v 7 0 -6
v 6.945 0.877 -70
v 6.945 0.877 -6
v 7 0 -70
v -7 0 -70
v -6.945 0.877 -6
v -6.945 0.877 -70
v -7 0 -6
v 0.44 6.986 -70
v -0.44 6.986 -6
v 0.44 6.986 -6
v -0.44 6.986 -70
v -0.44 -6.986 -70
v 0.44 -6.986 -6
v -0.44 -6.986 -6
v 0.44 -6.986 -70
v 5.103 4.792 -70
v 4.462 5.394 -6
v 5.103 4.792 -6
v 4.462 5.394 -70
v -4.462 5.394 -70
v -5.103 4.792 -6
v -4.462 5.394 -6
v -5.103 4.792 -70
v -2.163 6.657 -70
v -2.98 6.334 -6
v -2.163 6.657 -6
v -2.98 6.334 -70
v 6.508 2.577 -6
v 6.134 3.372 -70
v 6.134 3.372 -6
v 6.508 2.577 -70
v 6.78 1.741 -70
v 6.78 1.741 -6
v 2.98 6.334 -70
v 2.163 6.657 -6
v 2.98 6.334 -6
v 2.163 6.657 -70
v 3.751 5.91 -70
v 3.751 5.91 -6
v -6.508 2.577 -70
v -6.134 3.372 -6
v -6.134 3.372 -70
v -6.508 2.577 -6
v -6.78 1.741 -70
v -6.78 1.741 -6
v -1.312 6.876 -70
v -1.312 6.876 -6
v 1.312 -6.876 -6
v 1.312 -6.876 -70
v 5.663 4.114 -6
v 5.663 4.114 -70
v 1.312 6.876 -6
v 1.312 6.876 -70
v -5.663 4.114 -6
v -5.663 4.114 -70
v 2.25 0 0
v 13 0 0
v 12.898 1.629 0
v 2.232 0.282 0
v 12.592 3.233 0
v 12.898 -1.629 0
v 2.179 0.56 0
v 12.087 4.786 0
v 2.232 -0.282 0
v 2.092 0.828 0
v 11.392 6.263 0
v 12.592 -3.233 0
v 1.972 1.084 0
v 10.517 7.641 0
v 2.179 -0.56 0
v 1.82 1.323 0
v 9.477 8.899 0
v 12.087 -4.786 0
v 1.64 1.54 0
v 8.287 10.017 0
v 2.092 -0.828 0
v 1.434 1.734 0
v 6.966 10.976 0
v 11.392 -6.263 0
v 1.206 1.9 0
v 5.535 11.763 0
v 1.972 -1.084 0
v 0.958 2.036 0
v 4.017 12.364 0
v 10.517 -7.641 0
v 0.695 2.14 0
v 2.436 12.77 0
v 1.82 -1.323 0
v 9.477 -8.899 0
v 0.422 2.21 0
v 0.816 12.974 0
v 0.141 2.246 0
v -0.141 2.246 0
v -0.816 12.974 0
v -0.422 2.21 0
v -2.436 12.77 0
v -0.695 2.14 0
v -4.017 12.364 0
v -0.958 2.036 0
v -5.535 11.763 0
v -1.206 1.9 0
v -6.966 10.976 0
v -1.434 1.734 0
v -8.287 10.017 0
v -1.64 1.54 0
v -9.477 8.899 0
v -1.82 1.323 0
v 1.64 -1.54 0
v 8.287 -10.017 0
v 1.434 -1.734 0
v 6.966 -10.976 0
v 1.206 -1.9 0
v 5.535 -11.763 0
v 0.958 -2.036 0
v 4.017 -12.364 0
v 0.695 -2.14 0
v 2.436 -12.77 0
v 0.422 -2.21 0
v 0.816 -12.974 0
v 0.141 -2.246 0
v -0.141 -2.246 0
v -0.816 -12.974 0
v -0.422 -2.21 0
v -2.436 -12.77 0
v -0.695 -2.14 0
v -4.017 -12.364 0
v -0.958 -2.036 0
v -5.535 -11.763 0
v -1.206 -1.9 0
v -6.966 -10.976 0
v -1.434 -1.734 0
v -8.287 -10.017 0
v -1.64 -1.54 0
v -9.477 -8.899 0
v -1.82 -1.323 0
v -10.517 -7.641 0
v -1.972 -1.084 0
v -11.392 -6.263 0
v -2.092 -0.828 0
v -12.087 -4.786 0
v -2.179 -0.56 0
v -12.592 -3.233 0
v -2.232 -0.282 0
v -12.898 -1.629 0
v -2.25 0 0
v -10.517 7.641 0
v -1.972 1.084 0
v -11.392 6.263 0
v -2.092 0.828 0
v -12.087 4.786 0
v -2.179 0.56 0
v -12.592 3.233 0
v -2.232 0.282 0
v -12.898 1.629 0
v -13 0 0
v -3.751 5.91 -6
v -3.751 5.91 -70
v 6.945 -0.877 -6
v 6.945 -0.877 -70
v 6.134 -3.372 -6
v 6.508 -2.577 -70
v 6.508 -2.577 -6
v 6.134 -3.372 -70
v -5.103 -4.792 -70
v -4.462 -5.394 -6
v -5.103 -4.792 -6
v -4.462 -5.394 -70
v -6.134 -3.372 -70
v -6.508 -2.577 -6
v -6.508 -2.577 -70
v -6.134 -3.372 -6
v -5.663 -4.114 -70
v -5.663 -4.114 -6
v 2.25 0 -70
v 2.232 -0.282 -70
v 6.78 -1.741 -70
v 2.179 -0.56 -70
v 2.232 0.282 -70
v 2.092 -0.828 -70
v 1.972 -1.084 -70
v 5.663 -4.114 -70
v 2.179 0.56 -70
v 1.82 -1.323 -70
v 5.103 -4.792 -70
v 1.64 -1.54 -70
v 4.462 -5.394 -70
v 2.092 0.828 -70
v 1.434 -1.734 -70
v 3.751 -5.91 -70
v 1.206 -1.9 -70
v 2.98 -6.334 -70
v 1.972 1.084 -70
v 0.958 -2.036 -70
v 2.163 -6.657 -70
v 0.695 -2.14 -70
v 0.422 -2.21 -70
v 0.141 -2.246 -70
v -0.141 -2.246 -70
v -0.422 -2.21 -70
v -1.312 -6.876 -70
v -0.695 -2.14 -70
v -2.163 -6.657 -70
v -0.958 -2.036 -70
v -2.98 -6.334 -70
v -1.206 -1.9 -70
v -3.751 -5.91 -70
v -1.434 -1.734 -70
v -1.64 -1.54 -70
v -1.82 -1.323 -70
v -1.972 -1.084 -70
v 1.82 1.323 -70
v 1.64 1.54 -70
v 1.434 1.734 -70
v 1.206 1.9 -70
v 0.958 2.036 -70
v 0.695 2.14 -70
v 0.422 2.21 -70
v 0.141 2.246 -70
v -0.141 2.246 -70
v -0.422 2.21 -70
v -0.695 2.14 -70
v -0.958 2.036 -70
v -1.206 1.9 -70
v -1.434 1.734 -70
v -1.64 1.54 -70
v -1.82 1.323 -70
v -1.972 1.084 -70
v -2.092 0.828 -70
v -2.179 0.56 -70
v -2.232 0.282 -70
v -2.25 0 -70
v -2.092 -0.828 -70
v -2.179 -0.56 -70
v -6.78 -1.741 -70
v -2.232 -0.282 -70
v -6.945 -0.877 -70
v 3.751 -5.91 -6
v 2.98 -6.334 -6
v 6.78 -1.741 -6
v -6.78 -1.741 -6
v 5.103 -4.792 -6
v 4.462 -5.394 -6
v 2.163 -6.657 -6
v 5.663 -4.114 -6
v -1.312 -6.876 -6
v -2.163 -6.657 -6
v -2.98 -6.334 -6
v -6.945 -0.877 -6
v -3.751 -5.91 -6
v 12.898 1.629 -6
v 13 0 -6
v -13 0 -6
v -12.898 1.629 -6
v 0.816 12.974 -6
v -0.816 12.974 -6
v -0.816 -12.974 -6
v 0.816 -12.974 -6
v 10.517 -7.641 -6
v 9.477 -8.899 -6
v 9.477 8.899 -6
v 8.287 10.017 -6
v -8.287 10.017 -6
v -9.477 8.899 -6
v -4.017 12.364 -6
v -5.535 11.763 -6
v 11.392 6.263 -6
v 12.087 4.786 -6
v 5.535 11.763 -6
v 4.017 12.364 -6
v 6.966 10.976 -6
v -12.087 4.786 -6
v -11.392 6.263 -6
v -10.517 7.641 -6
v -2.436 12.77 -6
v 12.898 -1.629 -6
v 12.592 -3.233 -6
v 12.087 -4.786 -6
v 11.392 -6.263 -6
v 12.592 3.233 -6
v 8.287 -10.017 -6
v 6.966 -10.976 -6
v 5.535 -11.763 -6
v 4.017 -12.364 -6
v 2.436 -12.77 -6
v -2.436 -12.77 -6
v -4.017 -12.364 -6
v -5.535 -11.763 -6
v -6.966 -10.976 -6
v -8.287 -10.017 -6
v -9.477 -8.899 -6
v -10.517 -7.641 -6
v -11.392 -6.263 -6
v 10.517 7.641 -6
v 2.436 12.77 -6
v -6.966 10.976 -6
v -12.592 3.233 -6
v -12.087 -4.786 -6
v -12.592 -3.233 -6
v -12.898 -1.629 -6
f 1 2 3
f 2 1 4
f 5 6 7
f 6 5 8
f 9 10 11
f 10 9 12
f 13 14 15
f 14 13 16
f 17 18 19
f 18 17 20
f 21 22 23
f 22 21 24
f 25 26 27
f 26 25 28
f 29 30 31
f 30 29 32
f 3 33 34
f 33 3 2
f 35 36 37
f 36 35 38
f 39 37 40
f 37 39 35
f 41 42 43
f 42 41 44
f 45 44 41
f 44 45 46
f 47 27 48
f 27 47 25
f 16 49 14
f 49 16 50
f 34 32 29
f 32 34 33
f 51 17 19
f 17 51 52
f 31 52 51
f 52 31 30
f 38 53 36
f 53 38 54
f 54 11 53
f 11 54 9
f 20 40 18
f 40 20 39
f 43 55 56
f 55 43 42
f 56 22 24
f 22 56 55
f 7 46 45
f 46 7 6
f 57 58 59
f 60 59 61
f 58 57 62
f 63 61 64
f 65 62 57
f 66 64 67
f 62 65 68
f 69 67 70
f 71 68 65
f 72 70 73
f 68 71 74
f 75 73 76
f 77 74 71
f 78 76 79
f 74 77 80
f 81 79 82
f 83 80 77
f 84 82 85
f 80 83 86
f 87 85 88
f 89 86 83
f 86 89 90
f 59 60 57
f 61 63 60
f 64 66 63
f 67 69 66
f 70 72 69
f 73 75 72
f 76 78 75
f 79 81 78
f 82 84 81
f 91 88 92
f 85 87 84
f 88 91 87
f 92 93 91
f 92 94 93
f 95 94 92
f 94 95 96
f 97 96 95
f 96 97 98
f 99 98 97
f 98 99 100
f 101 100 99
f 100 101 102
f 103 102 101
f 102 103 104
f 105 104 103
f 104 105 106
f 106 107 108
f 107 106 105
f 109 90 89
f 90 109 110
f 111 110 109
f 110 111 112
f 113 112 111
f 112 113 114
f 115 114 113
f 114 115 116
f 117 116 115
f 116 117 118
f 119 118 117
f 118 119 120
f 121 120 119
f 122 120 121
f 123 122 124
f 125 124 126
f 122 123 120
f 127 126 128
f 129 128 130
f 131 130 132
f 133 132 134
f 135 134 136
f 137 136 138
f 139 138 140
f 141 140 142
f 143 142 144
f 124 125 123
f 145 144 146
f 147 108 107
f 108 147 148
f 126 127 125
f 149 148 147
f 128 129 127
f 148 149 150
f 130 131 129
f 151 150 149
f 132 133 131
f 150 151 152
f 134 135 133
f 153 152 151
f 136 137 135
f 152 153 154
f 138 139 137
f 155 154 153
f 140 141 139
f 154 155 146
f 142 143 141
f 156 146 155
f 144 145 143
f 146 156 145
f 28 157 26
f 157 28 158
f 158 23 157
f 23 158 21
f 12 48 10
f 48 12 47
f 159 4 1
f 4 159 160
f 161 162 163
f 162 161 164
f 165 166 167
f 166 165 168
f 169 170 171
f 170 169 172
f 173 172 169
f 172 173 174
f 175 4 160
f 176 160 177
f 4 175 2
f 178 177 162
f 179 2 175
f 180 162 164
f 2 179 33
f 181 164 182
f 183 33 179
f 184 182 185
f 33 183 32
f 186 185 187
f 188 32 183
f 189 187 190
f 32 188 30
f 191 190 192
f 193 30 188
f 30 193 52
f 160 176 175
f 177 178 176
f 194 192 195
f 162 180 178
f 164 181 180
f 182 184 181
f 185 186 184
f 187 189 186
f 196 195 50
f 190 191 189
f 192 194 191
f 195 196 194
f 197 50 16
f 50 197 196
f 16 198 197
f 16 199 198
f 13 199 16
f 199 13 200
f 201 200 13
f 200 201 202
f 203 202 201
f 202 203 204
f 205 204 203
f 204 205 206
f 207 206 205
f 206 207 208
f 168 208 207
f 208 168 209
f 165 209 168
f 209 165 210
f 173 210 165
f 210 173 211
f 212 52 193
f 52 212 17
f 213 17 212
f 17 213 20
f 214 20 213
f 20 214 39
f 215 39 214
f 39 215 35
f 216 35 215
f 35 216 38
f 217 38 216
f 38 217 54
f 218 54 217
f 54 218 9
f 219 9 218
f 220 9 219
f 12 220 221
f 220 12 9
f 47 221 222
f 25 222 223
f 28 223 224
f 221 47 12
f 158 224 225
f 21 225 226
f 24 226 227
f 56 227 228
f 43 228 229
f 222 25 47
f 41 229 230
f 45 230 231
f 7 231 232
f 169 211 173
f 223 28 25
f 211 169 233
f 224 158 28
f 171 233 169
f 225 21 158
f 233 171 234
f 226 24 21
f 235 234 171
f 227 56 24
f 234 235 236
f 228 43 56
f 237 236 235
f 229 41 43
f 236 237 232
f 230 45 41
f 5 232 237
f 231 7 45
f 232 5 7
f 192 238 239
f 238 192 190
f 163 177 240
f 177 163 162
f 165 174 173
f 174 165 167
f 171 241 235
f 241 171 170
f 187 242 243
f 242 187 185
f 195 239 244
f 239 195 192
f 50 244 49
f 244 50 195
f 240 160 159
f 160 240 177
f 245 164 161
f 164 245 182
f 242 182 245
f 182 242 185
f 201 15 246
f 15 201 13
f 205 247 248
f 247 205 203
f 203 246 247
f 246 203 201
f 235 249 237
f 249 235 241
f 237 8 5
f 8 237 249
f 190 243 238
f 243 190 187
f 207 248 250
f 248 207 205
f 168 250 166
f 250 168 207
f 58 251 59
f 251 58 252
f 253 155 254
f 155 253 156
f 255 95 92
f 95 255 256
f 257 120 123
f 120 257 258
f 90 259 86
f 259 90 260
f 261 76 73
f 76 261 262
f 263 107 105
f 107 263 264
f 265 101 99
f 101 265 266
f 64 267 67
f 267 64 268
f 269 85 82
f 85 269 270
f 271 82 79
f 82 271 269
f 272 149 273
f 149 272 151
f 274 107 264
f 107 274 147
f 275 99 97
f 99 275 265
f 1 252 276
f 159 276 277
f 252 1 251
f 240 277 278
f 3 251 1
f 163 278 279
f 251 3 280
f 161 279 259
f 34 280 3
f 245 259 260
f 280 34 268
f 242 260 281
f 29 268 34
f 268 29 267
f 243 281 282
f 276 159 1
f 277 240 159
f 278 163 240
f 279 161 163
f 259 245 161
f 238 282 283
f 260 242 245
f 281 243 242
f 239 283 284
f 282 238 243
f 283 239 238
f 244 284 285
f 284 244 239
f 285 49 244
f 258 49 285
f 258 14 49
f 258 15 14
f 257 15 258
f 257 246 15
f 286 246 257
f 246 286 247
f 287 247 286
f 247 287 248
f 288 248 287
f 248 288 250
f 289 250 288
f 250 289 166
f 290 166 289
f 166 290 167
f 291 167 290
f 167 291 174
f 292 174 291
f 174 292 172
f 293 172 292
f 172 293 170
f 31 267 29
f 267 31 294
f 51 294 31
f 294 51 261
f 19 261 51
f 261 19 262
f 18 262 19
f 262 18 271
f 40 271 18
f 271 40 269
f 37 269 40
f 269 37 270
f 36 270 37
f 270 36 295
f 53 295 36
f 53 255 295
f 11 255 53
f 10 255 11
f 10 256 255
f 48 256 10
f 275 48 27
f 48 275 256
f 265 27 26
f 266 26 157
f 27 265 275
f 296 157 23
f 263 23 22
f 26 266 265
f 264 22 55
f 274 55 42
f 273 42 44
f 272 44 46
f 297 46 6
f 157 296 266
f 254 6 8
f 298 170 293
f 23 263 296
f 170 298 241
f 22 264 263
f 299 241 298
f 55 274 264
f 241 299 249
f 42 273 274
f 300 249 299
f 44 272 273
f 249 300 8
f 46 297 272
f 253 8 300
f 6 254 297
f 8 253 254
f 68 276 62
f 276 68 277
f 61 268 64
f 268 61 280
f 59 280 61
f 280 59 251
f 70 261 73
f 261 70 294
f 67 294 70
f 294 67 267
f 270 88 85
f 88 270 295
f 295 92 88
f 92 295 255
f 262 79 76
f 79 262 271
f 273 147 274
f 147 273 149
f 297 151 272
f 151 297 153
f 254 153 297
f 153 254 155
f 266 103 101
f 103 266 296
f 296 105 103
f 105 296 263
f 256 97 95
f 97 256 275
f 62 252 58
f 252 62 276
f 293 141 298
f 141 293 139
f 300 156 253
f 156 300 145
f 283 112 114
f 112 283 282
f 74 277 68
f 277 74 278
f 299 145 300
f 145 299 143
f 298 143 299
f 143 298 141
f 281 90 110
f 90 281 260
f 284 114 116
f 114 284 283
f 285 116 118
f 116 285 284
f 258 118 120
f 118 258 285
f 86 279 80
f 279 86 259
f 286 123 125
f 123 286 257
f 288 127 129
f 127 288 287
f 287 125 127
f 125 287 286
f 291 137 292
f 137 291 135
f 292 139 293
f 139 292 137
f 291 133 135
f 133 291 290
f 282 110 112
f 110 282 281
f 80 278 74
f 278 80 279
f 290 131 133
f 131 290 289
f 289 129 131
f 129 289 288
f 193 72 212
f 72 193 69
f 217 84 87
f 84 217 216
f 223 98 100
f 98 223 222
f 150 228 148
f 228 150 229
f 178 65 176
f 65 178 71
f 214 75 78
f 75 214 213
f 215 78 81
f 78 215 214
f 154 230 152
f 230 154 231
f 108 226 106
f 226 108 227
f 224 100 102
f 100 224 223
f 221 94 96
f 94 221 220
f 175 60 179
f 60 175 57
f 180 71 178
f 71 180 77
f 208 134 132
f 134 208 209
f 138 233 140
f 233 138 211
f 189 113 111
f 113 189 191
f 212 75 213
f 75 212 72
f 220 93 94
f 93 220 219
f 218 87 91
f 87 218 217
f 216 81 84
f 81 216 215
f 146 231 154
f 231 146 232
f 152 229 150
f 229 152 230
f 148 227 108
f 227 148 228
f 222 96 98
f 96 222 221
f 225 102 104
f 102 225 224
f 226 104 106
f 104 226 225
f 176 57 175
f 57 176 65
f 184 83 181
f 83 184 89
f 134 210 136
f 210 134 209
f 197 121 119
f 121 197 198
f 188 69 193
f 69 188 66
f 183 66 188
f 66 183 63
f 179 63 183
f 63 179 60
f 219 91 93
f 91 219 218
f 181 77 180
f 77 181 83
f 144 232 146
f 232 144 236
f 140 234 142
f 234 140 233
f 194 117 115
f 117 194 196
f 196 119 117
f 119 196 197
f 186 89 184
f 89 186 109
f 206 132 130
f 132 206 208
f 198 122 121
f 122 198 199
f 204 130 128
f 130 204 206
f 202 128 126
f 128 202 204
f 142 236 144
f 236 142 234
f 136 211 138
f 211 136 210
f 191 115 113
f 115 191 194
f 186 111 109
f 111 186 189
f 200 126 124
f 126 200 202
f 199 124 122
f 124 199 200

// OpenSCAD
$fn = 50;


difference() {
	union() {
		translate(v = [0, 0, -70.0000000000]) {
			cylinder(h = 70, r = 7.0000000000);
		}
		translate(v = [0, 0, -6.0000000000]) {
			cylinder(h = 6, r = 13.0000000000);
		}
	}
	union() {
		#translate(v = [0, 0, -70]) {
			cylinder(h = 70, r = 2.2500000000);
		}
	}
}
